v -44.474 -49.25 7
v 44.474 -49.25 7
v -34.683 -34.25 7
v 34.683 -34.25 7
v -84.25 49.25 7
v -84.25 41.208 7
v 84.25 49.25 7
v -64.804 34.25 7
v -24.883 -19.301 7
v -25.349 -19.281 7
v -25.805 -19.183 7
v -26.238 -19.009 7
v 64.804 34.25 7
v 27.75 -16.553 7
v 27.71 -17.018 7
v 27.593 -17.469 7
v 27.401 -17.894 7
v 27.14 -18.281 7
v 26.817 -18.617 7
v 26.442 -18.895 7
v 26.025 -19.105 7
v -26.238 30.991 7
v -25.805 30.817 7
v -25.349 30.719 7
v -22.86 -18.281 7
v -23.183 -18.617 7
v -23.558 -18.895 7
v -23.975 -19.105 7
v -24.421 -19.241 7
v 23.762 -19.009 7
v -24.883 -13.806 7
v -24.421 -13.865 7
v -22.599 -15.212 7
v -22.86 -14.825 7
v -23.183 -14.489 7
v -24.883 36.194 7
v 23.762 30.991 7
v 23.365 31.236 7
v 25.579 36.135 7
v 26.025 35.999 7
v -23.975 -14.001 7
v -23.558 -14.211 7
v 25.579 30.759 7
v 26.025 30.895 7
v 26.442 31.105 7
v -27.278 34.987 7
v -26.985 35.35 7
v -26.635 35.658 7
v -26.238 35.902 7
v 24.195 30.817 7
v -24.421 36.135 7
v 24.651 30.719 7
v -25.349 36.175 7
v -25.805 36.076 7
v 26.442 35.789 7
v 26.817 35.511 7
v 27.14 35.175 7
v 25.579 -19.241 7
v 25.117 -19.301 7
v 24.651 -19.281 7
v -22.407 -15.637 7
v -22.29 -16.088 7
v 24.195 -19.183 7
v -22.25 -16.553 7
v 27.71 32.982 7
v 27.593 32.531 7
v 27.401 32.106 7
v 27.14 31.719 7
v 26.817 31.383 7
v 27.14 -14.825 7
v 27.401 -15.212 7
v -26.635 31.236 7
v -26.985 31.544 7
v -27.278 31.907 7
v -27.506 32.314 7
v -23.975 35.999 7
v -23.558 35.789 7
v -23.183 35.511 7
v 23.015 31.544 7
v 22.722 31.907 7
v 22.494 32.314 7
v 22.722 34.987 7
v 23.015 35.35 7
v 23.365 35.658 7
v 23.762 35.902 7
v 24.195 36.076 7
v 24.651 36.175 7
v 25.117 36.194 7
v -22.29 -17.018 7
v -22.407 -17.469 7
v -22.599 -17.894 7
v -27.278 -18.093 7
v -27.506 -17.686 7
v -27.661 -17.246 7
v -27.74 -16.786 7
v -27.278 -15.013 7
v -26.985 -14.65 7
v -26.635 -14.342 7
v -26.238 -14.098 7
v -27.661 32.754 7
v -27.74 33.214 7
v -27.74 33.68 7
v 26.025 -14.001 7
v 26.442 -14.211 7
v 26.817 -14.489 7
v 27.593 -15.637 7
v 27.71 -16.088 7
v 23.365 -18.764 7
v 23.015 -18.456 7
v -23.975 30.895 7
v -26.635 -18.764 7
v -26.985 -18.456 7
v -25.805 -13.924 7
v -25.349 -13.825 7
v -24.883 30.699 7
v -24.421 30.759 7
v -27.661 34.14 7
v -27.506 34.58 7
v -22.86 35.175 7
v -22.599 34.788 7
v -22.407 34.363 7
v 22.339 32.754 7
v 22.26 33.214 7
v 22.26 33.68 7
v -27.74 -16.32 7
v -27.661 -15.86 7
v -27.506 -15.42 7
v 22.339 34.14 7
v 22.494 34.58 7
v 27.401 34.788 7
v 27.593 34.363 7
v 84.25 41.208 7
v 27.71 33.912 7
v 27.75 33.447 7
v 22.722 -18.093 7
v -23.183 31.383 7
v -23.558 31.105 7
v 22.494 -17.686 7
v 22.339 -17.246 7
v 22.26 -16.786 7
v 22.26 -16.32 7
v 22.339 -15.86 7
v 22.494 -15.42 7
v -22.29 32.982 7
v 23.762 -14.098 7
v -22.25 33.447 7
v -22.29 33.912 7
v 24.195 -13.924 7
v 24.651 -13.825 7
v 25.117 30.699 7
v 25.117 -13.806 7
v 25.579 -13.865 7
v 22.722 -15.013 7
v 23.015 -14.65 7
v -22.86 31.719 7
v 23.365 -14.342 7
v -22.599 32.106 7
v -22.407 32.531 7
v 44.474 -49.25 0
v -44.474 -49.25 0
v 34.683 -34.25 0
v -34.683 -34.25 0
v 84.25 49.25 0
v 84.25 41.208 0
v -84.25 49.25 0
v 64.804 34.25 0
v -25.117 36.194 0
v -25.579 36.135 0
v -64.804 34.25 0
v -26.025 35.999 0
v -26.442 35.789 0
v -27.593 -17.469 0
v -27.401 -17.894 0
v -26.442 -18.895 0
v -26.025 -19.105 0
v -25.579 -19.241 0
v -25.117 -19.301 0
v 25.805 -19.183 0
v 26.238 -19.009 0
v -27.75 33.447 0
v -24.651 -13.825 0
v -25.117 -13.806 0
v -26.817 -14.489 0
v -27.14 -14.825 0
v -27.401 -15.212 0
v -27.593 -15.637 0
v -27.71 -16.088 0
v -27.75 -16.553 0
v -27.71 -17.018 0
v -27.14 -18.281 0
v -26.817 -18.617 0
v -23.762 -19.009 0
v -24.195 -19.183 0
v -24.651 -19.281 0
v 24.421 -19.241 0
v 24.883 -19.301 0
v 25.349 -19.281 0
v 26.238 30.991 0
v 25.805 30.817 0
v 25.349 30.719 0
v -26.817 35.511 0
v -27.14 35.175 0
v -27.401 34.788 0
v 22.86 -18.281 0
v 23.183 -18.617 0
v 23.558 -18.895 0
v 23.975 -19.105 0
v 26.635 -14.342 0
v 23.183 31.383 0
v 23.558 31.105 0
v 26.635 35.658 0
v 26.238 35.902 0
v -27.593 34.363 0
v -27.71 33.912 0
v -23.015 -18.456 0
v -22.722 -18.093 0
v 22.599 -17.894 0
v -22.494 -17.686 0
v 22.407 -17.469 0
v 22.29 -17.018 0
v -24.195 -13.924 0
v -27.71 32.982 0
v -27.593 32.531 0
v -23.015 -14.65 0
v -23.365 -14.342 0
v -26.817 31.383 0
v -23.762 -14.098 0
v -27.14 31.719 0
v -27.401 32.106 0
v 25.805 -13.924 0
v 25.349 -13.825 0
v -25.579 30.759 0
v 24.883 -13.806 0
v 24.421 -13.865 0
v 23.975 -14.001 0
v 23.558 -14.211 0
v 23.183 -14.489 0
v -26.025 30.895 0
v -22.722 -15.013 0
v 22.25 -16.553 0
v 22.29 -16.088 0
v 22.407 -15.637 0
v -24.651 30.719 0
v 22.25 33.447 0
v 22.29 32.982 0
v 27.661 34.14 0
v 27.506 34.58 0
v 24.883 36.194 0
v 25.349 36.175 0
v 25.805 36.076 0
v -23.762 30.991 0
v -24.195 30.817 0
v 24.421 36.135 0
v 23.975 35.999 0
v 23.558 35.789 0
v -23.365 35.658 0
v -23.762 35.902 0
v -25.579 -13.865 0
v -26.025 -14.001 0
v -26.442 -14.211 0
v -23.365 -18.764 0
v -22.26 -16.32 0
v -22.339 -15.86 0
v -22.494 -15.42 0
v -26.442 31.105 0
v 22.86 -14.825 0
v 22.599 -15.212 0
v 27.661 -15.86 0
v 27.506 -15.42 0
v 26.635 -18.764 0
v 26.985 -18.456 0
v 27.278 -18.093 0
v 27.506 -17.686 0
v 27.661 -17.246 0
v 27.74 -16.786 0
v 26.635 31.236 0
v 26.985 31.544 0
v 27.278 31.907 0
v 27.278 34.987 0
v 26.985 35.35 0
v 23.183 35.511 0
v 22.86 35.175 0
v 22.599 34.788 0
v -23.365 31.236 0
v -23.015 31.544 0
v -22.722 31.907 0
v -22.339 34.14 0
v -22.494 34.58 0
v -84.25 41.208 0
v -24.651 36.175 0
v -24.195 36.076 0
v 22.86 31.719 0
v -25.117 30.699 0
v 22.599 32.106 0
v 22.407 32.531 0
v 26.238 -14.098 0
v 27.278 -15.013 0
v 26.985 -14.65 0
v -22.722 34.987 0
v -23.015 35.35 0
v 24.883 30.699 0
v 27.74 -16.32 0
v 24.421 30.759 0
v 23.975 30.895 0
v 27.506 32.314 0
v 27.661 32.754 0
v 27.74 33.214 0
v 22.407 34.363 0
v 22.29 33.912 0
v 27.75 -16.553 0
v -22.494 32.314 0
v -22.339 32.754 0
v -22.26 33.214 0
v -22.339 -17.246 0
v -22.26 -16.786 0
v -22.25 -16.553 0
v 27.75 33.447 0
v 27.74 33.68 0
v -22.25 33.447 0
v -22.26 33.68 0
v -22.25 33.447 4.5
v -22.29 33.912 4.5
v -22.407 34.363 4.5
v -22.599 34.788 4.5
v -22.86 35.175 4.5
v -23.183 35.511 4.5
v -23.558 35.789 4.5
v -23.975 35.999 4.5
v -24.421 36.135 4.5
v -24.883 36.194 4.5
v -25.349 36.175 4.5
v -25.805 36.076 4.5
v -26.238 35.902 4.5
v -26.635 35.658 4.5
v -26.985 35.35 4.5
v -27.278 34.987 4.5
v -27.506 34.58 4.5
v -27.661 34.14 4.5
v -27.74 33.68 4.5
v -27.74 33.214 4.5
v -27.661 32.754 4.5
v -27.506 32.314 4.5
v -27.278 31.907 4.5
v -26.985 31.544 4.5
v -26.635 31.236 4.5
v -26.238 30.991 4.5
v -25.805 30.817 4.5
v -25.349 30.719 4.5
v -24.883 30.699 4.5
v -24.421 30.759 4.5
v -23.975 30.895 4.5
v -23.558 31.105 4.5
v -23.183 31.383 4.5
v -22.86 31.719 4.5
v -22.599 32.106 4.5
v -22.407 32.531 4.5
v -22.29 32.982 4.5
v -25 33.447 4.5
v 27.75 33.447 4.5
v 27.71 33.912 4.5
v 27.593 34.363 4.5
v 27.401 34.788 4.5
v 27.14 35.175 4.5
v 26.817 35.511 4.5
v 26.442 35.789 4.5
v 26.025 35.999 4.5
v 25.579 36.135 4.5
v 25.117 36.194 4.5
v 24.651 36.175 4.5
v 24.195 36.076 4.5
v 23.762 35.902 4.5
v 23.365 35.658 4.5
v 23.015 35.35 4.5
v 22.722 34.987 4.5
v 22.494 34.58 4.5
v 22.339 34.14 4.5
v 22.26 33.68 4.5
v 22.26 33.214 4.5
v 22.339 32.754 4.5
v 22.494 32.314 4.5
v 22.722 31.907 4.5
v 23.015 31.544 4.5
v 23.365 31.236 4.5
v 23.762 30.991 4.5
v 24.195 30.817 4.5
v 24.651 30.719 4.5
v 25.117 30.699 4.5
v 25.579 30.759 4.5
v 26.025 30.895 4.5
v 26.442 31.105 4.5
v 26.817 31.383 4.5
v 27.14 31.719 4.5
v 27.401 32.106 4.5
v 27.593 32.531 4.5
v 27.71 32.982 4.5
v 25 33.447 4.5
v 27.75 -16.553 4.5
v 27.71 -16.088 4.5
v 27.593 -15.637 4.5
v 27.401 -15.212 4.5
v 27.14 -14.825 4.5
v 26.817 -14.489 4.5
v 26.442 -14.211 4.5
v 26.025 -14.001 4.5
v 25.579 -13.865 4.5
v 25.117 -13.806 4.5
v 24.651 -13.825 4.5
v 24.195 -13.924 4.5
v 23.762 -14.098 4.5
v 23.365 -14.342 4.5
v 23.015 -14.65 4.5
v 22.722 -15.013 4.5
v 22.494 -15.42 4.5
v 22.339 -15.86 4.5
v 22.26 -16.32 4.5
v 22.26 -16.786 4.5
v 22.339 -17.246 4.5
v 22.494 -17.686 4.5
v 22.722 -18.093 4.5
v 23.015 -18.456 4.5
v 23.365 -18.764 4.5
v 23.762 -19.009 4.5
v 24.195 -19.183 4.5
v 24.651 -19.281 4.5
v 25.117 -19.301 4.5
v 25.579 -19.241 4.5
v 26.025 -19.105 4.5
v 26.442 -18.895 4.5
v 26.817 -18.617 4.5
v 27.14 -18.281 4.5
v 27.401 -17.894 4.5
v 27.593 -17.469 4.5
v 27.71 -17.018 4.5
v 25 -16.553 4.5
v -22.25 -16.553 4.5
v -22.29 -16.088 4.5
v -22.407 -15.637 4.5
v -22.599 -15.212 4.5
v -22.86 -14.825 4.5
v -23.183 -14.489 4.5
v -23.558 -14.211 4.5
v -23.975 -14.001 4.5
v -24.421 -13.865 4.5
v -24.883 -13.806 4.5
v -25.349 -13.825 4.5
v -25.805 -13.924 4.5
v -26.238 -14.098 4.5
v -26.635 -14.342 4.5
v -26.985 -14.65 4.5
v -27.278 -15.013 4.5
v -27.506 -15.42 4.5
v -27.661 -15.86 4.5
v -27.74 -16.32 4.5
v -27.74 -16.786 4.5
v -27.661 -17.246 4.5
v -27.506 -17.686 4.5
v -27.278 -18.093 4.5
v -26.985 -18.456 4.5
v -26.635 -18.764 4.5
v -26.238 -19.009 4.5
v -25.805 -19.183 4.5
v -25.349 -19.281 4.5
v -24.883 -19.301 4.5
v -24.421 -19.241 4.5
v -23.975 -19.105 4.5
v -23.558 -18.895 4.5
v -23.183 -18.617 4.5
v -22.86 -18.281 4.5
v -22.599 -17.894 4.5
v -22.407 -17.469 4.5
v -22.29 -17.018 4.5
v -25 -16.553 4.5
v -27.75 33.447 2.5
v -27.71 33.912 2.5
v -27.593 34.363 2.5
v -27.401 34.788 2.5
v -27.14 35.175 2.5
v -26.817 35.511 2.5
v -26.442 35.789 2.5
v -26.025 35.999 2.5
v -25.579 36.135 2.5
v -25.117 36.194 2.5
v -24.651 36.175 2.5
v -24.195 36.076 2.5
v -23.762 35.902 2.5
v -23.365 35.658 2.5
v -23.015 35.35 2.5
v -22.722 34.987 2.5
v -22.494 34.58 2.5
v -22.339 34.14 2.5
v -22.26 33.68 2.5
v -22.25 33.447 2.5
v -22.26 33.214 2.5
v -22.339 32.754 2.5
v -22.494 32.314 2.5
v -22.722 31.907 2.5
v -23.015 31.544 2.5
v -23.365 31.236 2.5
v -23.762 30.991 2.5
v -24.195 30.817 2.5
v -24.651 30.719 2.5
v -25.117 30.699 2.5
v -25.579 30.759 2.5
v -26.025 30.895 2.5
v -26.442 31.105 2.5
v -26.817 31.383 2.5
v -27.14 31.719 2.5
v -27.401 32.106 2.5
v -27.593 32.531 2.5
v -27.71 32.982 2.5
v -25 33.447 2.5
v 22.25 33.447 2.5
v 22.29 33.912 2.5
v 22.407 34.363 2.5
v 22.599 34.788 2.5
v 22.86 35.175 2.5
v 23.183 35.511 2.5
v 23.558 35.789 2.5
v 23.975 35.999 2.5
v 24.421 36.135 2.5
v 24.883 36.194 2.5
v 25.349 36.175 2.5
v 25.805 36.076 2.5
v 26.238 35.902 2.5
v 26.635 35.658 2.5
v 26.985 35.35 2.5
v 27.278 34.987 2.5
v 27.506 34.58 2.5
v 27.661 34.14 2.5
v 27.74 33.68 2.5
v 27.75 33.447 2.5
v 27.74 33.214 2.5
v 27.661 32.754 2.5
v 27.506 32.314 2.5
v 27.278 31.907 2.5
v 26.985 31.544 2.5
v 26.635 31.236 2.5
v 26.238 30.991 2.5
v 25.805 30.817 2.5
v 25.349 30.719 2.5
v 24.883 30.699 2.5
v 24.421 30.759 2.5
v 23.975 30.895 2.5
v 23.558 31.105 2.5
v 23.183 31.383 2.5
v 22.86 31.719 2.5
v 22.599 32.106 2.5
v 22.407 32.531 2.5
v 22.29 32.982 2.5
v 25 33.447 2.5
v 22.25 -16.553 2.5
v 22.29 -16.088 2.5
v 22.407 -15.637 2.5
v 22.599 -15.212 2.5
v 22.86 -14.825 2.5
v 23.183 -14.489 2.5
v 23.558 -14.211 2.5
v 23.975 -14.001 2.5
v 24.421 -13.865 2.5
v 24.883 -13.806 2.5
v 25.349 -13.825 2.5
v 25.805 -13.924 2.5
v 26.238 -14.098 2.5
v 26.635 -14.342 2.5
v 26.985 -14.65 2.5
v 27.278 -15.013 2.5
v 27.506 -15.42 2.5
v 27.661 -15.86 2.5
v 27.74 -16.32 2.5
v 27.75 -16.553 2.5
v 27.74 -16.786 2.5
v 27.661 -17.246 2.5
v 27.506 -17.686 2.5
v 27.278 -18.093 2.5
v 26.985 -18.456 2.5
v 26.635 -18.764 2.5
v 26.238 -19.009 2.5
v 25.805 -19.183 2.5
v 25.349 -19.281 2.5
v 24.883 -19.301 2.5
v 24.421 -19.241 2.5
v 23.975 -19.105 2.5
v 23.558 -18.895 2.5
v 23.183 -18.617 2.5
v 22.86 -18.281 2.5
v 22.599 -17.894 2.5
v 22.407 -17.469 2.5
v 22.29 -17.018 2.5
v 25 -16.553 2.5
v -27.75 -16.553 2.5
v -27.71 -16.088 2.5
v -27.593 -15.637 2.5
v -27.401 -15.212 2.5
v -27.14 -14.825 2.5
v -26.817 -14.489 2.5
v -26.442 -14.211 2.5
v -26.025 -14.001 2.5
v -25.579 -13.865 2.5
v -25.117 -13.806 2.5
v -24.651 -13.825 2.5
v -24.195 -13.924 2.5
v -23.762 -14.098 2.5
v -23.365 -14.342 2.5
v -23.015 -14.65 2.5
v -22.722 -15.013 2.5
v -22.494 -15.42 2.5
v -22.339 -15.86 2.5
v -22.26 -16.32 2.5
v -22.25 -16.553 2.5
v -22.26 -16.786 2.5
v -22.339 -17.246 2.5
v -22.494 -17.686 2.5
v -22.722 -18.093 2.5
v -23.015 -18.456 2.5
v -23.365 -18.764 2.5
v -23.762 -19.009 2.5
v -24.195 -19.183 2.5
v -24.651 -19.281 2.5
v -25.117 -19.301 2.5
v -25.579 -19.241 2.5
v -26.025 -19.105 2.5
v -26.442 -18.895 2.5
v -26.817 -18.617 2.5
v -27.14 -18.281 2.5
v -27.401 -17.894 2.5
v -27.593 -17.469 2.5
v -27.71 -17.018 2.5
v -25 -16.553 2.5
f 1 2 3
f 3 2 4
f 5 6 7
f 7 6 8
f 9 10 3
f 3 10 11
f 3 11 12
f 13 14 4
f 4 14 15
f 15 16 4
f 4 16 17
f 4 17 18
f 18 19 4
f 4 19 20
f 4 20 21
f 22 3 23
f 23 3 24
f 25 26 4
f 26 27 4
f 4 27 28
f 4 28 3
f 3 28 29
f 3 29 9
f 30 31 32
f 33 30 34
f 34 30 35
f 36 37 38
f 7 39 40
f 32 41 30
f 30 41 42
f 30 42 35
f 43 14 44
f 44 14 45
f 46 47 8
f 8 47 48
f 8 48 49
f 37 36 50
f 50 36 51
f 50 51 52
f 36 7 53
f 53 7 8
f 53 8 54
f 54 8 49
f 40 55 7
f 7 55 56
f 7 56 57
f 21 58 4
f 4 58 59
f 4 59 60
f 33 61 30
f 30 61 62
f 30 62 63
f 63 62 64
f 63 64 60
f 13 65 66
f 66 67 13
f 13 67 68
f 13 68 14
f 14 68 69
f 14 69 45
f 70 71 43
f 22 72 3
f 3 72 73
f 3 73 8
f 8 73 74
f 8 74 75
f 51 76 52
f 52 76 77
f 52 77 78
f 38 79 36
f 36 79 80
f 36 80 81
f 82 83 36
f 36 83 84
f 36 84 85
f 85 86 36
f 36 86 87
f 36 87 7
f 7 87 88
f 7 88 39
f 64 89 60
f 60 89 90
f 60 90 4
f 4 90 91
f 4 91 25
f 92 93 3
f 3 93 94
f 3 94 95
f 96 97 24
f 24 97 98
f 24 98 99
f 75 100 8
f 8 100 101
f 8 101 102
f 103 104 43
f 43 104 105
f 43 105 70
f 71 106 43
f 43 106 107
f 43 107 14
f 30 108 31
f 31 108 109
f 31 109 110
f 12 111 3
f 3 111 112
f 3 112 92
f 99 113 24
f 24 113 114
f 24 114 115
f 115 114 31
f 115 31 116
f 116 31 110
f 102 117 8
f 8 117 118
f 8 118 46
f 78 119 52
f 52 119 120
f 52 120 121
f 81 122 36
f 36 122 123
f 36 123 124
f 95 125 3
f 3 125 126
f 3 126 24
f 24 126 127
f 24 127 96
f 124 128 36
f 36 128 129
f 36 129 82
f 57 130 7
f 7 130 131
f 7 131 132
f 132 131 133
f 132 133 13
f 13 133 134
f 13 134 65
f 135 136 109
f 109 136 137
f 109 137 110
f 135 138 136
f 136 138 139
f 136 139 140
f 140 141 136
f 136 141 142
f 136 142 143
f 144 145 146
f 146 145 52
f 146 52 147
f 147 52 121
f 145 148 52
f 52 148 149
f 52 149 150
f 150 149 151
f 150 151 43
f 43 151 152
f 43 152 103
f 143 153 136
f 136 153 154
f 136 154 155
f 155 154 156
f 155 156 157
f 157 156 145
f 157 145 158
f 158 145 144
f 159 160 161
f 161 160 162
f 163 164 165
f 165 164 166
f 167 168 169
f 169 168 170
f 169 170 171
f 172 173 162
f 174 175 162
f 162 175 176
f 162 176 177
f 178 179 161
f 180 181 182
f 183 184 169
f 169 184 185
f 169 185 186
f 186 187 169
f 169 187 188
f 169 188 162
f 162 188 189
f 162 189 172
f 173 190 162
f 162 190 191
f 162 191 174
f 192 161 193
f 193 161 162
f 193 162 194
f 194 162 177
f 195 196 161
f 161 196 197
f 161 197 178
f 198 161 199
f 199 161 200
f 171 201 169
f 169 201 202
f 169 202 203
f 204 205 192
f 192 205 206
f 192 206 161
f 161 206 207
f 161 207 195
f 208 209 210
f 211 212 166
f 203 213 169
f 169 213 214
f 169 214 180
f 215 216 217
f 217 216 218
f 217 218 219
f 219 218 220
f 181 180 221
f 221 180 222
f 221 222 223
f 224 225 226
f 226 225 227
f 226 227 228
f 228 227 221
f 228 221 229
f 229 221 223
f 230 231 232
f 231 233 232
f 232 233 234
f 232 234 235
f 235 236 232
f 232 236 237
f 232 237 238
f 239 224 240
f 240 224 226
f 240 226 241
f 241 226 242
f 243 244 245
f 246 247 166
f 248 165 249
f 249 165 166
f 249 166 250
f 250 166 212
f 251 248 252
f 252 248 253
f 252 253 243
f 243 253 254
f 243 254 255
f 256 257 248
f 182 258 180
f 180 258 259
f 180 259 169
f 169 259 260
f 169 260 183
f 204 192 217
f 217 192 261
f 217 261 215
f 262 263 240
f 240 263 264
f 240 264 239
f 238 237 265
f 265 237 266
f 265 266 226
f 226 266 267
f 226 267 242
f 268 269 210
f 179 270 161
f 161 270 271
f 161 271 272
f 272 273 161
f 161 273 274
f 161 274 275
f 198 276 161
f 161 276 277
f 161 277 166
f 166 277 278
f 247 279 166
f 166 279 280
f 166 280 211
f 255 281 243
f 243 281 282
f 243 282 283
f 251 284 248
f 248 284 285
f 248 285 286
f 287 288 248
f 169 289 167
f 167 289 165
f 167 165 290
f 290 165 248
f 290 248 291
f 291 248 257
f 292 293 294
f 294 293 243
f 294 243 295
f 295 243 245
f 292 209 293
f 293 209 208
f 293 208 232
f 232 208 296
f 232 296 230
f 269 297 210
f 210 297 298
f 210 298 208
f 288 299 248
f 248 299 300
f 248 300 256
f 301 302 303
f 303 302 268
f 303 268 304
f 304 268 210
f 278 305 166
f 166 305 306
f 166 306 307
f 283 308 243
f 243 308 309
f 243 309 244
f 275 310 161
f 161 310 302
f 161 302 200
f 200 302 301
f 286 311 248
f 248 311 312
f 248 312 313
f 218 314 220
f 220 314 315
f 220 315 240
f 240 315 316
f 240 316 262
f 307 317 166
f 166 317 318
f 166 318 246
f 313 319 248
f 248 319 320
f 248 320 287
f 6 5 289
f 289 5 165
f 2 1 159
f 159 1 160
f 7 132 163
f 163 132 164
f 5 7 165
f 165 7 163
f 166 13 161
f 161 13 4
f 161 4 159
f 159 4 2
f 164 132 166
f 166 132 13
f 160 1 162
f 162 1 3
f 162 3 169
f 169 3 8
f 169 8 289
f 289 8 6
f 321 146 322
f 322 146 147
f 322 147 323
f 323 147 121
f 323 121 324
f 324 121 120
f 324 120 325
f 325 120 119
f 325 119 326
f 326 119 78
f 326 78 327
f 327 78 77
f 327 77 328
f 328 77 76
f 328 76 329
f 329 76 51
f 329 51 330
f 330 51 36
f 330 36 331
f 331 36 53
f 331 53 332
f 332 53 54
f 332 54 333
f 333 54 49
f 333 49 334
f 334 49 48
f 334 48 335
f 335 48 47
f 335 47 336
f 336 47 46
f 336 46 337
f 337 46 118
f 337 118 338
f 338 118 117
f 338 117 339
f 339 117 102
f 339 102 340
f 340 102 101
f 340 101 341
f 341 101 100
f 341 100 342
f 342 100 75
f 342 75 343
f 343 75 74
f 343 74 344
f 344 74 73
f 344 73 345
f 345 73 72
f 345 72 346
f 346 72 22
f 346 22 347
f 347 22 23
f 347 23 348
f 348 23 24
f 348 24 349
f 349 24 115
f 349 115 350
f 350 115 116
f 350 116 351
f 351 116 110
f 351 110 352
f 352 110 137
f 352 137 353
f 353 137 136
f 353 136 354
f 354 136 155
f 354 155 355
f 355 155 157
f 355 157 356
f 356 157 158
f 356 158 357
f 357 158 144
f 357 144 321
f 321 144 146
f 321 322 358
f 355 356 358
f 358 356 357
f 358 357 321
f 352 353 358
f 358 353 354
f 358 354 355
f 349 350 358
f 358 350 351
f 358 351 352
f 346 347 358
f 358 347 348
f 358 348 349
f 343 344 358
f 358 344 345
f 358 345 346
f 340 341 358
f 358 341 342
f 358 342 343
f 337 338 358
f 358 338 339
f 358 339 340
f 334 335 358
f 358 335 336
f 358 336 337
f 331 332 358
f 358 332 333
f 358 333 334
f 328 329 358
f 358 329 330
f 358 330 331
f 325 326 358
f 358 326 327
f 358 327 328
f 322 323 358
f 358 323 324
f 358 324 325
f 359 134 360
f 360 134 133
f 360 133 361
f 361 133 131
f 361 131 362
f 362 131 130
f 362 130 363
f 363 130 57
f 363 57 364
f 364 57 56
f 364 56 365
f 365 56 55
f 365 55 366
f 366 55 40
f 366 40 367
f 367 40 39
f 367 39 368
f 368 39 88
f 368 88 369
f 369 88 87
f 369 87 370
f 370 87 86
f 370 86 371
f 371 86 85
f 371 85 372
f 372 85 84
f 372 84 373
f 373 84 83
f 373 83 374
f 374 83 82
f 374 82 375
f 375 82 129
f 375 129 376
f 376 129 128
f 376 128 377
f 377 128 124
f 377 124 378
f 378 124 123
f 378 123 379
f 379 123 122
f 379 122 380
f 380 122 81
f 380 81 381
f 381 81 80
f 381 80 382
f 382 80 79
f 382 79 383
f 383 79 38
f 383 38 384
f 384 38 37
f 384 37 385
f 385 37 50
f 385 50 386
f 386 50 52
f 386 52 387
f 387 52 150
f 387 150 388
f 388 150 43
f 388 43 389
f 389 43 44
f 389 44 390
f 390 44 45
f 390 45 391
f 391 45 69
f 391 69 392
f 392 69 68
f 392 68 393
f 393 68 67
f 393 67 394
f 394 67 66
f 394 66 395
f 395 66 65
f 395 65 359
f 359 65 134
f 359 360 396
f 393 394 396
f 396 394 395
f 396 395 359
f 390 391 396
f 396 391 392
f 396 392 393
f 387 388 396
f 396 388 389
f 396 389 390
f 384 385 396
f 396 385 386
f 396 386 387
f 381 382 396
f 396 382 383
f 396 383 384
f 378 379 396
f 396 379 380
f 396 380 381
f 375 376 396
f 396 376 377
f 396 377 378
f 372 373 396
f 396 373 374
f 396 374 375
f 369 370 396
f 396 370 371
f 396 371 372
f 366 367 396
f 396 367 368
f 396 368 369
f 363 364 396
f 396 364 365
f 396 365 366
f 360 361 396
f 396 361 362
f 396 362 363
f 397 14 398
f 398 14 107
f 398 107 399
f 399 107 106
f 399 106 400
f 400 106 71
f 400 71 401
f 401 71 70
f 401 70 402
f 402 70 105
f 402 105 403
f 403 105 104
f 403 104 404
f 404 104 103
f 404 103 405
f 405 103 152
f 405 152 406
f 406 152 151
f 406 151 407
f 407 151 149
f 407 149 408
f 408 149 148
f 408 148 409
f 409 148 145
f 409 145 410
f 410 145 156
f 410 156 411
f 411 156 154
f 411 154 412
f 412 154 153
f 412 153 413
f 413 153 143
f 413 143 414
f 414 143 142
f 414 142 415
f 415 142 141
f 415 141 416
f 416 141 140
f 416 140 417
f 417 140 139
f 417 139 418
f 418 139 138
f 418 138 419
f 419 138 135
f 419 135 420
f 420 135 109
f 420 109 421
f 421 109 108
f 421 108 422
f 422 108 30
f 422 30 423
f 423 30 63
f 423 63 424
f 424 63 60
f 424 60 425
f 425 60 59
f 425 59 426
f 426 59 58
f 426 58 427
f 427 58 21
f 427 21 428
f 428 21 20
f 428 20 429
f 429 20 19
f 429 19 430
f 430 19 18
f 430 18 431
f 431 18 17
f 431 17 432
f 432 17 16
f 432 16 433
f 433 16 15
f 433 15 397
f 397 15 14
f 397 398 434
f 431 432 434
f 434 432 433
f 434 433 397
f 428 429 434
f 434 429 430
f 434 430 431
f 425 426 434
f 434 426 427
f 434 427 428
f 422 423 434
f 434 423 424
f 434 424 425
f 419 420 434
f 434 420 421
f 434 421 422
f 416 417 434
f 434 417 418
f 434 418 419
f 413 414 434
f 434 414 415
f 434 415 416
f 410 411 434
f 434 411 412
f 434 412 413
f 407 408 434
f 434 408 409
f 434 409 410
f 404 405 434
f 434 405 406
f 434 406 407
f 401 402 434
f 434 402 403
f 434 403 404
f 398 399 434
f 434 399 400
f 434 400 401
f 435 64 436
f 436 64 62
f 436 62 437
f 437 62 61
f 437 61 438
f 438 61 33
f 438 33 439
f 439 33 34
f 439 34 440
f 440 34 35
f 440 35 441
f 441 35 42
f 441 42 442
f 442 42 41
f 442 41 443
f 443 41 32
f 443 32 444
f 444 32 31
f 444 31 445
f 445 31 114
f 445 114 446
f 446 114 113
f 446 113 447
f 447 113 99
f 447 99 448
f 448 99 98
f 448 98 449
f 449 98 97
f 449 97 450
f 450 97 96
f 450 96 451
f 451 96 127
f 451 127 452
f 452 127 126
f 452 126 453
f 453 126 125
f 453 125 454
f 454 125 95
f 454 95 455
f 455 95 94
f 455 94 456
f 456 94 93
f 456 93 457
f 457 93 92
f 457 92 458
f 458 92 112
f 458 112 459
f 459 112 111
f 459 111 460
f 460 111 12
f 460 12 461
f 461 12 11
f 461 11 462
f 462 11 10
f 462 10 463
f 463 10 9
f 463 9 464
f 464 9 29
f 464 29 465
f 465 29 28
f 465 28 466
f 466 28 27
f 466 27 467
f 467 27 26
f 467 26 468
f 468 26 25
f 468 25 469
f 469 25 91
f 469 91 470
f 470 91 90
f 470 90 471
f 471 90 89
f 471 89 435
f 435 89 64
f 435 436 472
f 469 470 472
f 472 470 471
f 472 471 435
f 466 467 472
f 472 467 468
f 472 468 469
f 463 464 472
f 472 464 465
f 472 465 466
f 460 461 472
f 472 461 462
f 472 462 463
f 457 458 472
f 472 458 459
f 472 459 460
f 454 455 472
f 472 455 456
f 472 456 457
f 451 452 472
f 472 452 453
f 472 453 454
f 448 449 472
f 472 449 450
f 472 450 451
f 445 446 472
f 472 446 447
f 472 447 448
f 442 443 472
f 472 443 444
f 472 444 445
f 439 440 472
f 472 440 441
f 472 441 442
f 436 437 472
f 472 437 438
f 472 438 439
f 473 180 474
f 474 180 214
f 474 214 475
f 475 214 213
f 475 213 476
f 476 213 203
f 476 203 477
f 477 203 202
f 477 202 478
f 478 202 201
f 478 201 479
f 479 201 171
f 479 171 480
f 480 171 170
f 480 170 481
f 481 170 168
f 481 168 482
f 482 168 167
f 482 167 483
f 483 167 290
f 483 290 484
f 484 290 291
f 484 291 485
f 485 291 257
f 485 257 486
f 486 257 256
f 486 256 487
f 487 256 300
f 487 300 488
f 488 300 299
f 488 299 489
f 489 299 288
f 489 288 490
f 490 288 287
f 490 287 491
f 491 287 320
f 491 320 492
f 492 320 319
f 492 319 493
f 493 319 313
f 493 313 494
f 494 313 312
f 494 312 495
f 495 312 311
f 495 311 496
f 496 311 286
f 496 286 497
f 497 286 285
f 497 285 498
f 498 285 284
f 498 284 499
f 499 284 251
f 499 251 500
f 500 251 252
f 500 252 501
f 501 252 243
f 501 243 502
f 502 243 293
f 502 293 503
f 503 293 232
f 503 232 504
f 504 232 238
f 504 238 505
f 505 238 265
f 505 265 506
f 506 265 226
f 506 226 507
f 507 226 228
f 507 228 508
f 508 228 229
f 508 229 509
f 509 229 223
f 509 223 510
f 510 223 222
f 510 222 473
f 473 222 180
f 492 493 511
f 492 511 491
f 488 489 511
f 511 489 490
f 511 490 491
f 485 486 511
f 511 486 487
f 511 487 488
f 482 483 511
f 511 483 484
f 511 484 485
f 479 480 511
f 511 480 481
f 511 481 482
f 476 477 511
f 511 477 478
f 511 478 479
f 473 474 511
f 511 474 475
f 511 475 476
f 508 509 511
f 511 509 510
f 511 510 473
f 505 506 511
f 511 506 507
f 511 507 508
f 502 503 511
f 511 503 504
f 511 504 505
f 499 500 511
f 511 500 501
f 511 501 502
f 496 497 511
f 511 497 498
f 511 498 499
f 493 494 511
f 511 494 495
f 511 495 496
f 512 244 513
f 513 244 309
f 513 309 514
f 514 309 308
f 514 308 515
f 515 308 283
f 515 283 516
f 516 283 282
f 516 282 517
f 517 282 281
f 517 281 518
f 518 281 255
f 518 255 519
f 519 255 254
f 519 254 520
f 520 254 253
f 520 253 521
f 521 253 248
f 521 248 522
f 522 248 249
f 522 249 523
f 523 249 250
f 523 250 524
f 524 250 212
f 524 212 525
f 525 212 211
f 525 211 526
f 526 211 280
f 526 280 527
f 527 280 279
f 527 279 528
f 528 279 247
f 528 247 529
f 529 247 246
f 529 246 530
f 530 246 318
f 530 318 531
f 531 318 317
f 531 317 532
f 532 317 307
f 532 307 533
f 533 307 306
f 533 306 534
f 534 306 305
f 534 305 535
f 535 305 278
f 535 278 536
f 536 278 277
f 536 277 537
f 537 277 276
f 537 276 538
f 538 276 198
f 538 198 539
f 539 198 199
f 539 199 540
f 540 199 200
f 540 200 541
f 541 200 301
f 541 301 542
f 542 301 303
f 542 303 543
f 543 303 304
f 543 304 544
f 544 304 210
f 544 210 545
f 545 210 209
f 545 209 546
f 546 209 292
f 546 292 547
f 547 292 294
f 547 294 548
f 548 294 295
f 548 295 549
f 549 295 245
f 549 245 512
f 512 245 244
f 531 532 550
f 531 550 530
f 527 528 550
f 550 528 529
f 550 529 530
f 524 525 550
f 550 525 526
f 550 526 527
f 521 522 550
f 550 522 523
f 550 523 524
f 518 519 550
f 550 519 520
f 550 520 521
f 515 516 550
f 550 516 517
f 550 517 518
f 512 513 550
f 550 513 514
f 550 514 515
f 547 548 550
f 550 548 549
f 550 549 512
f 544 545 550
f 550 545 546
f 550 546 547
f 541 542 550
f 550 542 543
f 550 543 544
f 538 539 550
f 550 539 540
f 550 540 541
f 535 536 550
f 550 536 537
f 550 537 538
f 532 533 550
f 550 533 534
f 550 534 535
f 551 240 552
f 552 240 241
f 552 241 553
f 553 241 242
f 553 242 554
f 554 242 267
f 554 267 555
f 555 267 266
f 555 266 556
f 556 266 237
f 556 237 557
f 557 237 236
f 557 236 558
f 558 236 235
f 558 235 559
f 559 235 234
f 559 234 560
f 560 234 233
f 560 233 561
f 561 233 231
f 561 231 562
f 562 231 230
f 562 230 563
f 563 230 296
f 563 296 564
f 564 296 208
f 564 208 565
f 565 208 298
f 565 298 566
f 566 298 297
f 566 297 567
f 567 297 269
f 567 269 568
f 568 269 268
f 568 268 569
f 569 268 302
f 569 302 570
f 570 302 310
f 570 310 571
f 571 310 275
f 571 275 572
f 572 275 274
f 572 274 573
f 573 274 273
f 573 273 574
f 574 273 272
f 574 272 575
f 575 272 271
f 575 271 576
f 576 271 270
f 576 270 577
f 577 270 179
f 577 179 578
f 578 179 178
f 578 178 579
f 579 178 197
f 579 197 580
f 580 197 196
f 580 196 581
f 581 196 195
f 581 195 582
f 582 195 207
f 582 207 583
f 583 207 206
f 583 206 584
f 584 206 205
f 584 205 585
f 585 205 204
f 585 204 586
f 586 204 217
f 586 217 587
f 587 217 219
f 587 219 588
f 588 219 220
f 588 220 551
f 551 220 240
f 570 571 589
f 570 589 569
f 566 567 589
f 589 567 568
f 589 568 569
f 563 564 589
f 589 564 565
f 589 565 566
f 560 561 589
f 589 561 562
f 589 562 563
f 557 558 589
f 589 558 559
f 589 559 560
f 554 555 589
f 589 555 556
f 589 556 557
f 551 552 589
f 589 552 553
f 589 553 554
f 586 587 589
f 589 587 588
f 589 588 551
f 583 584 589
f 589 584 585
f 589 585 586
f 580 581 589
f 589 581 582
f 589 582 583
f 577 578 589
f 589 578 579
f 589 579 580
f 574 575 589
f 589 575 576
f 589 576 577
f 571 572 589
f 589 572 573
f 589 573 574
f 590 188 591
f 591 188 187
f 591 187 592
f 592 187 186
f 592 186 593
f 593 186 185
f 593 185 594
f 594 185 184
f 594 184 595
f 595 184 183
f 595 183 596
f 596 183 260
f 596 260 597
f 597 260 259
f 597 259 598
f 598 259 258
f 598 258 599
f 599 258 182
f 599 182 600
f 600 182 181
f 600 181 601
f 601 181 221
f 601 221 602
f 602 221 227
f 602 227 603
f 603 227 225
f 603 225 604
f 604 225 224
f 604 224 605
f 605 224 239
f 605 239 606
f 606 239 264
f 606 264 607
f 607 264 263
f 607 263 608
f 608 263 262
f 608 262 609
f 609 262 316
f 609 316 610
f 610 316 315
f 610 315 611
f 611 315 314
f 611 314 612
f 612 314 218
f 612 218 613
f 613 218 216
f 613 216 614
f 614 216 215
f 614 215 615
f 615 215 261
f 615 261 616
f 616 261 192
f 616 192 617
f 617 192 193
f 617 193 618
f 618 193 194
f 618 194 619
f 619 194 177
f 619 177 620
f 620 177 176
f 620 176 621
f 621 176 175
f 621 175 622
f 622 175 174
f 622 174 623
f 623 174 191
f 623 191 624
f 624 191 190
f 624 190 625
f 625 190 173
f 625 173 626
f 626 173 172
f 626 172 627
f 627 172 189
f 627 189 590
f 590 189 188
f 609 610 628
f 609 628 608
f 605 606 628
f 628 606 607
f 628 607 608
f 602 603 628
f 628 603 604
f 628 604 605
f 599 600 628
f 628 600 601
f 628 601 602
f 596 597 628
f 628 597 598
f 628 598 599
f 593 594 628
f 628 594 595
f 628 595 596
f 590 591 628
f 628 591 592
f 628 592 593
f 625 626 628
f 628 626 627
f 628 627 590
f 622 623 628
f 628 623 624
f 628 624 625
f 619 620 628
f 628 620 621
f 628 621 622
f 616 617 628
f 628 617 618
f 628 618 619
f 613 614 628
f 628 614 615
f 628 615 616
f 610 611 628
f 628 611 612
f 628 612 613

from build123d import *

# Parameters (mm, degrees)
BOSS_EXTRUDE1_DEPTH = 7
CUT_EXTRUDE1_DEPTH  = 10
SKETCH3_R           = 2.75
CUT_EXTRUDE2_DEPTH  = 2.5


with BuildPart() as part:
    # Sketch1 → Boss-Extrude1 (new body)
    with BuildSketch(Plane.XY):
        Polygon((-84.25, 41.208366892), (-44.473549128, -49.25), (44.473549128, -49.25), (84.25, 41.208366892), (84.25, 49.25), (-84.25, 49.25), align=None)
    extrude(amount=BOSS_EXTRUDE1_DEPTH)

    # Sketch2 → Cut-Extrude1 (cut)
    with BuildSketch(Plane(origin=(0, 0, 0), x_dir=(-1, 0, 0), z_dir=(0, 0, -1))):
        Polygon((44.473549128, -49.25), (34.683249526, -34.25), (64.804143572, 34.25), (84.25, 41.208366892), align=None)
        Polygon((-64.804143572, 34.25), (-34.683249526, -34.25), (-44.473549128, -49.25), (-84.25, 41.208366892), align=None)
    extrude(amount=-CUT_EXTRUDE1_DEPTH, mode=Mode.SUBTRACT)

    # Sketch3 → Cut-Extrude2 (cut)
    with BuildSketch(Plane.XY.offset(7)):
        with Locations((25, 33.446923075)):
            Circle(SKETCH3_R)
        with Locations((-25, 33.446923075)):
            Circle(SKETCH3_R)
        with Locations((-25, -16.553076925)):
            Circle(SKETCH3_R)
        with Locations((25, -16.553076925)):
            Circle(SKETCH3_R)
    cut_extrude2 = extrude(amount=-CUT_EXTRUDE2_DEPTH, mode=Mode.SUBTRACT)

    # Mirror1: Cut-Extrude2 across plane
    add(cut_extrude2.mirror(Plane(origin=(0, 0, 3.5), x_dir=(1, 0, 0), z_dir=(0, 0, -1))), mode=Mode.SUBTRACT)


solid = part.part
